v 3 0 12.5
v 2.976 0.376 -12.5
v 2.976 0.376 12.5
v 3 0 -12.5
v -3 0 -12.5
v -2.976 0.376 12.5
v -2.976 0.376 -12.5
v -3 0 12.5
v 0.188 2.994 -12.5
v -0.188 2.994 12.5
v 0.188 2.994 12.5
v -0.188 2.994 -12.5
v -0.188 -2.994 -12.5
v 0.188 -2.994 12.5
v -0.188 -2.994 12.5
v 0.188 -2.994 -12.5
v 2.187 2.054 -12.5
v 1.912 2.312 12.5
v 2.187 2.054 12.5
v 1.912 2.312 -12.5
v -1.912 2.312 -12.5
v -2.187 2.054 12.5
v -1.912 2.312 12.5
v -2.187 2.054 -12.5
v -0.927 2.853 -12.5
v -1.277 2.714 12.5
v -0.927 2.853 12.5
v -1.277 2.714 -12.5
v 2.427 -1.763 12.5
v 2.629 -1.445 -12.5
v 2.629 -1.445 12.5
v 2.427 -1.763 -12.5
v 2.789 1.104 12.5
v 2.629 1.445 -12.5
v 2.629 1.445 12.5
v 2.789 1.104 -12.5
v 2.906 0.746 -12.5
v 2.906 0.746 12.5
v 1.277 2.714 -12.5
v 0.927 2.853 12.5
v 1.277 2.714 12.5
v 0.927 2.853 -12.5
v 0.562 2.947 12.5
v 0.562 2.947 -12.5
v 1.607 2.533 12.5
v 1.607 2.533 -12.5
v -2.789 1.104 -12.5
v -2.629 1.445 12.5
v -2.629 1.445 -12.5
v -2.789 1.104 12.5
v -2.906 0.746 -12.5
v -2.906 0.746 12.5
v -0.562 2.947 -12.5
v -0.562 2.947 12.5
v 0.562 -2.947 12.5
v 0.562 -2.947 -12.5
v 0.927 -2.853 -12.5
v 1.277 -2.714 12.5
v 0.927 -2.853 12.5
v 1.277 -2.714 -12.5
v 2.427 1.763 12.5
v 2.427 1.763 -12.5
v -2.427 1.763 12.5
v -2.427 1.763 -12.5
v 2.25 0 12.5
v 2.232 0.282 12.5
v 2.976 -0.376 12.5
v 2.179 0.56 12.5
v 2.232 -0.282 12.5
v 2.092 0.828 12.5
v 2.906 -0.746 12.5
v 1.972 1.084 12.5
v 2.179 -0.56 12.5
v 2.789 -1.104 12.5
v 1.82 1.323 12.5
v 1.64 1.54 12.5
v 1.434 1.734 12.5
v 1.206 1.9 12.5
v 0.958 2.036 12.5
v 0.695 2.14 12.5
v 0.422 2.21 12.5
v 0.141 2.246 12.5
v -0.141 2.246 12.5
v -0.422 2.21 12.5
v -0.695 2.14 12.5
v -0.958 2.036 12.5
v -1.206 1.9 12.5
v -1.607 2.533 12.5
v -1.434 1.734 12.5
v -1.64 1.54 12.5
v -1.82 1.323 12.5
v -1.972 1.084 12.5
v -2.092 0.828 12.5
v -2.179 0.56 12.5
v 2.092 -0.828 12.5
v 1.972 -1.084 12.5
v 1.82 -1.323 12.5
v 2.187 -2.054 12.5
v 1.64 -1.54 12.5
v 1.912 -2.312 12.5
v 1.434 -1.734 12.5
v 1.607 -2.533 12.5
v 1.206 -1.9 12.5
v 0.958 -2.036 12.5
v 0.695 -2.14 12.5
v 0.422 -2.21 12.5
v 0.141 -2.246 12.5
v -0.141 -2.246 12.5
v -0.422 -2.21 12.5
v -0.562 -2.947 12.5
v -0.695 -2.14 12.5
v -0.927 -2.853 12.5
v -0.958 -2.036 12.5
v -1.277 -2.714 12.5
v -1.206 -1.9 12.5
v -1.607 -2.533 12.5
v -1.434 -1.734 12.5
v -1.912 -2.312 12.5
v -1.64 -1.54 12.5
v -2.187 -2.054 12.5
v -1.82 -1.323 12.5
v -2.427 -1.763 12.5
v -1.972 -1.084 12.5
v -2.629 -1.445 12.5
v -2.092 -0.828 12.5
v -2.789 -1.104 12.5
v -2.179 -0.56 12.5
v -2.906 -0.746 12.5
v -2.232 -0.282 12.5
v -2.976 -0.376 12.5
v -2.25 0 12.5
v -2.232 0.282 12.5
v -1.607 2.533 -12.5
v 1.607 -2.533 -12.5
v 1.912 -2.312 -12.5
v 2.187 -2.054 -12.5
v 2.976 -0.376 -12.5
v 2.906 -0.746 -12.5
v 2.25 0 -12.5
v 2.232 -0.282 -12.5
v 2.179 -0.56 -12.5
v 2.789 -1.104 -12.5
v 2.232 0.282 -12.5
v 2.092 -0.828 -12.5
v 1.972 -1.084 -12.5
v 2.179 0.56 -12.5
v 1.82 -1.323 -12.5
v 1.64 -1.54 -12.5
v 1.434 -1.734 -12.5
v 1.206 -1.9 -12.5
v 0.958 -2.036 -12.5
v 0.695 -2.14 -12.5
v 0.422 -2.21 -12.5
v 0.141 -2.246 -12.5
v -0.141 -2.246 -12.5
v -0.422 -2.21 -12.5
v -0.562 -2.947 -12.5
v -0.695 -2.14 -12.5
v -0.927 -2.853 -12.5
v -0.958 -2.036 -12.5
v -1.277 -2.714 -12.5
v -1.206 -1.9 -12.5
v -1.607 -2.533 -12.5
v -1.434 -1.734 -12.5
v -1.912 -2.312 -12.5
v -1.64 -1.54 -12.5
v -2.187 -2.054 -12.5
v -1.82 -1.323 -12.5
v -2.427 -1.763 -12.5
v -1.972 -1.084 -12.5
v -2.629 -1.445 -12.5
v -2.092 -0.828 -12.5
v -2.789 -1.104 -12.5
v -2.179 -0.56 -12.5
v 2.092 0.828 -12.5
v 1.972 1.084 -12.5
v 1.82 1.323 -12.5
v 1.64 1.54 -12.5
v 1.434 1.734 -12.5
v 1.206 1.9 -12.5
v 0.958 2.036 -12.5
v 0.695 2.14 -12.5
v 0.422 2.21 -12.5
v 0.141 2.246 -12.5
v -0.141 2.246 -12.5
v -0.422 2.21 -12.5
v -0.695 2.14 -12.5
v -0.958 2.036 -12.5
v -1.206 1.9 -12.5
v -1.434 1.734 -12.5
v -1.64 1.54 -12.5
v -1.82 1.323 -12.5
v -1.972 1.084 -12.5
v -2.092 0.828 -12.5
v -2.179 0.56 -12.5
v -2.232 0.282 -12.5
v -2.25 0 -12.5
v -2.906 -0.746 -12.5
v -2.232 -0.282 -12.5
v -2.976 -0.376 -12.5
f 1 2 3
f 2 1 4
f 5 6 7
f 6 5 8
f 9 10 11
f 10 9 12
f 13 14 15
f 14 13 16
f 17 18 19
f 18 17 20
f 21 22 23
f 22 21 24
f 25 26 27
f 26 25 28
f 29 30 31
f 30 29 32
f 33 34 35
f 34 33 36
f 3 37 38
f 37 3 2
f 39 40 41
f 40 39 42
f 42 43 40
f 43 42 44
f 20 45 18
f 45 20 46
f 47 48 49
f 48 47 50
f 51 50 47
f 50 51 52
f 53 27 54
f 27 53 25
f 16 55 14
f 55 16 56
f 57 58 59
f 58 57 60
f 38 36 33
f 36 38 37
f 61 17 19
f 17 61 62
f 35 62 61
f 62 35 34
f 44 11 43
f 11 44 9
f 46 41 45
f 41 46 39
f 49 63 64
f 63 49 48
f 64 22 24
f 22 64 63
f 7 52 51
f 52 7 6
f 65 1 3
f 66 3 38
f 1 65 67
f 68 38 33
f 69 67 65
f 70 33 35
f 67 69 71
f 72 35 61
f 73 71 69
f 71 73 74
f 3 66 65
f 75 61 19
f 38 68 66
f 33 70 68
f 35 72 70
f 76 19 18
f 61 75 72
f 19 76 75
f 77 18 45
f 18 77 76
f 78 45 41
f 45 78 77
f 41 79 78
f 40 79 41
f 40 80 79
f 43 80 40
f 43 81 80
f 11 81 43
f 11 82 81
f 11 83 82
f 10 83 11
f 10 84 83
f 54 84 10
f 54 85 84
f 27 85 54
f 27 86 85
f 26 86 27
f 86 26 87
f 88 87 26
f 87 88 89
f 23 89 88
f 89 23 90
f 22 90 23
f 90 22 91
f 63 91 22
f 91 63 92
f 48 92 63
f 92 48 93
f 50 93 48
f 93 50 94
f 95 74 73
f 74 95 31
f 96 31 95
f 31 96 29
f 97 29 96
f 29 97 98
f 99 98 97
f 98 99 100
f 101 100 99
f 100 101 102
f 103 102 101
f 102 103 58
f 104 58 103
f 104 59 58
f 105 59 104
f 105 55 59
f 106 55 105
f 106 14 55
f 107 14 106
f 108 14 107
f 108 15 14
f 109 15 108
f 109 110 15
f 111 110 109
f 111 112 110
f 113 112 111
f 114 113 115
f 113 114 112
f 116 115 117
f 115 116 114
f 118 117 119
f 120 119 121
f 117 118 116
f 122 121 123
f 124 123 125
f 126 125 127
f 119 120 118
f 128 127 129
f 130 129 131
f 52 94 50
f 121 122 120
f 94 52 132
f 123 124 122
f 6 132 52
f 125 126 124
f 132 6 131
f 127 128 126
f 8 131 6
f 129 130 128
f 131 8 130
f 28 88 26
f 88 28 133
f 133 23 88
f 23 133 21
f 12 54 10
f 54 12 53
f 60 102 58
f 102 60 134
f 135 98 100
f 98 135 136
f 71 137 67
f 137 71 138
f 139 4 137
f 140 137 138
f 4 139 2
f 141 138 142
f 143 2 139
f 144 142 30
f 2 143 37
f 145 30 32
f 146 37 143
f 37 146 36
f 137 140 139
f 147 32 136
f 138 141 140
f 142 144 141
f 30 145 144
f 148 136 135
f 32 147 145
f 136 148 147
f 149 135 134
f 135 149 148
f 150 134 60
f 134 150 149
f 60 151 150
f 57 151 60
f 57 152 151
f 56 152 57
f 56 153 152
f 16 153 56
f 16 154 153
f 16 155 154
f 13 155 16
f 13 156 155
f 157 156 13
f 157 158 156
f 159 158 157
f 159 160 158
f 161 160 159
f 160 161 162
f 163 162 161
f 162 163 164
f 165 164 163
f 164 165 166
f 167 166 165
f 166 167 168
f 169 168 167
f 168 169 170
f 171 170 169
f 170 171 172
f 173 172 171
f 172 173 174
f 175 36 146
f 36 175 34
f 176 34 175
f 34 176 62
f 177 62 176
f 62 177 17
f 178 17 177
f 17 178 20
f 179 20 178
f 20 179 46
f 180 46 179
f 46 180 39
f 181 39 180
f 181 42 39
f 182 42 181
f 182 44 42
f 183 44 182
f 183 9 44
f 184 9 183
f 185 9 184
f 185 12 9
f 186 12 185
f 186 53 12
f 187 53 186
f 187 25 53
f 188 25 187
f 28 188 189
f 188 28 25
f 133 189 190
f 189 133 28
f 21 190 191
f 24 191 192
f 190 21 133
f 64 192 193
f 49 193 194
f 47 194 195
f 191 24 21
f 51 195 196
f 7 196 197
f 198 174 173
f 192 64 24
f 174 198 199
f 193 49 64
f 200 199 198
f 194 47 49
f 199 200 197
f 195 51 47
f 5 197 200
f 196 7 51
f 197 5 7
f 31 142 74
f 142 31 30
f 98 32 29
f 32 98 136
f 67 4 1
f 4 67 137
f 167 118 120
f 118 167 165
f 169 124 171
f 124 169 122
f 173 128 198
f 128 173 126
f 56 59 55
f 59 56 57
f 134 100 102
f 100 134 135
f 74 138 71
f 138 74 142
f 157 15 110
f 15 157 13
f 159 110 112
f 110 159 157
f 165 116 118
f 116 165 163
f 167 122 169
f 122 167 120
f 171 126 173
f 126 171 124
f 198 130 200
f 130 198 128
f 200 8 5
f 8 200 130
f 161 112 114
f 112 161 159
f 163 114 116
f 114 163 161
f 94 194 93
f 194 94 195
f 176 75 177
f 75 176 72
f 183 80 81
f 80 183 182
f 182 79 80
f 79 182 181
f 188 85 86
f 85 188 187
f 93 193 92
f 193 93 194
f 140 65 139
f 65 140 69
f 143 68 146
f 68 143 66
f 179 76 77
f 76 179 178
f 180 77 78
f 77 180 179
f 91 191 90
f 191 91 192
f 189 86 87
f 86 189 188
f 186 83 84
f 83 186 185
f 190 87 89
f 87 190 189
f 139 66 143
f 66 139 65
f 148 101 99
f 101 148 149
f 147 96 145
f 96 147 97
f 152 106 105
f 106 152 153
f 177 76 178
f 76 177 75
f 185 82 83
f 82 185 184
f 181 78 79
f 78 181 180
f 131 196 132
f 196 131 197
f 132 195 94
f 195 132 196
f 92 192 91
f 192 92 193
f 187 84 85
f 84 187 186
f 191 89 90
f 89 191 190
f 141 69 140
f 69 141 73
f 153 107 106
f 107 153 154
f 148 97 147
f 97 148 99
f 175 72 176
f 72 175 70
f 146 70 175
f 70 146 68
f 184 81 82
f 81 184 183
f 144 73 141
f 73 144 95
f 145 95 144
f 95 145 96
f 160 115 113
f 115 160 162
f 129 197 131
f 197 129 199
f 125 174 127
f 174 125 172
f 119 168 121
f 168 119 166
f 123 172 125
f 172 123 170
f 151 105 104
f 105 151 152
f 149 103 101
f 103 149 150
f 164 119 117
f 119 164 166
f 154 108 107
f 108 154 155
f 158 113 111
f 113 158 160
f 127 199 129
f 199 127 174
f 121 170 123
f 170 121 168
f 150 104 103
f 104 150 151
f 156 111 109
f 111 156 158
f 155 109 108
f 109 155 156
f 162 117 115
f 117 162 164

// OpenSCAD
$fn = 50;


difference() {
	union() {
		translate(v = [0, 0, -12.5000000000]) {
			cylinder(h = 25, r = 3.0000000000);
		}
	}
	union() {
		translate(v = [0, 0, -100.0000000000]) {
			cylinder(h = 200, r = 2.2500000000);
		}
	}
}
